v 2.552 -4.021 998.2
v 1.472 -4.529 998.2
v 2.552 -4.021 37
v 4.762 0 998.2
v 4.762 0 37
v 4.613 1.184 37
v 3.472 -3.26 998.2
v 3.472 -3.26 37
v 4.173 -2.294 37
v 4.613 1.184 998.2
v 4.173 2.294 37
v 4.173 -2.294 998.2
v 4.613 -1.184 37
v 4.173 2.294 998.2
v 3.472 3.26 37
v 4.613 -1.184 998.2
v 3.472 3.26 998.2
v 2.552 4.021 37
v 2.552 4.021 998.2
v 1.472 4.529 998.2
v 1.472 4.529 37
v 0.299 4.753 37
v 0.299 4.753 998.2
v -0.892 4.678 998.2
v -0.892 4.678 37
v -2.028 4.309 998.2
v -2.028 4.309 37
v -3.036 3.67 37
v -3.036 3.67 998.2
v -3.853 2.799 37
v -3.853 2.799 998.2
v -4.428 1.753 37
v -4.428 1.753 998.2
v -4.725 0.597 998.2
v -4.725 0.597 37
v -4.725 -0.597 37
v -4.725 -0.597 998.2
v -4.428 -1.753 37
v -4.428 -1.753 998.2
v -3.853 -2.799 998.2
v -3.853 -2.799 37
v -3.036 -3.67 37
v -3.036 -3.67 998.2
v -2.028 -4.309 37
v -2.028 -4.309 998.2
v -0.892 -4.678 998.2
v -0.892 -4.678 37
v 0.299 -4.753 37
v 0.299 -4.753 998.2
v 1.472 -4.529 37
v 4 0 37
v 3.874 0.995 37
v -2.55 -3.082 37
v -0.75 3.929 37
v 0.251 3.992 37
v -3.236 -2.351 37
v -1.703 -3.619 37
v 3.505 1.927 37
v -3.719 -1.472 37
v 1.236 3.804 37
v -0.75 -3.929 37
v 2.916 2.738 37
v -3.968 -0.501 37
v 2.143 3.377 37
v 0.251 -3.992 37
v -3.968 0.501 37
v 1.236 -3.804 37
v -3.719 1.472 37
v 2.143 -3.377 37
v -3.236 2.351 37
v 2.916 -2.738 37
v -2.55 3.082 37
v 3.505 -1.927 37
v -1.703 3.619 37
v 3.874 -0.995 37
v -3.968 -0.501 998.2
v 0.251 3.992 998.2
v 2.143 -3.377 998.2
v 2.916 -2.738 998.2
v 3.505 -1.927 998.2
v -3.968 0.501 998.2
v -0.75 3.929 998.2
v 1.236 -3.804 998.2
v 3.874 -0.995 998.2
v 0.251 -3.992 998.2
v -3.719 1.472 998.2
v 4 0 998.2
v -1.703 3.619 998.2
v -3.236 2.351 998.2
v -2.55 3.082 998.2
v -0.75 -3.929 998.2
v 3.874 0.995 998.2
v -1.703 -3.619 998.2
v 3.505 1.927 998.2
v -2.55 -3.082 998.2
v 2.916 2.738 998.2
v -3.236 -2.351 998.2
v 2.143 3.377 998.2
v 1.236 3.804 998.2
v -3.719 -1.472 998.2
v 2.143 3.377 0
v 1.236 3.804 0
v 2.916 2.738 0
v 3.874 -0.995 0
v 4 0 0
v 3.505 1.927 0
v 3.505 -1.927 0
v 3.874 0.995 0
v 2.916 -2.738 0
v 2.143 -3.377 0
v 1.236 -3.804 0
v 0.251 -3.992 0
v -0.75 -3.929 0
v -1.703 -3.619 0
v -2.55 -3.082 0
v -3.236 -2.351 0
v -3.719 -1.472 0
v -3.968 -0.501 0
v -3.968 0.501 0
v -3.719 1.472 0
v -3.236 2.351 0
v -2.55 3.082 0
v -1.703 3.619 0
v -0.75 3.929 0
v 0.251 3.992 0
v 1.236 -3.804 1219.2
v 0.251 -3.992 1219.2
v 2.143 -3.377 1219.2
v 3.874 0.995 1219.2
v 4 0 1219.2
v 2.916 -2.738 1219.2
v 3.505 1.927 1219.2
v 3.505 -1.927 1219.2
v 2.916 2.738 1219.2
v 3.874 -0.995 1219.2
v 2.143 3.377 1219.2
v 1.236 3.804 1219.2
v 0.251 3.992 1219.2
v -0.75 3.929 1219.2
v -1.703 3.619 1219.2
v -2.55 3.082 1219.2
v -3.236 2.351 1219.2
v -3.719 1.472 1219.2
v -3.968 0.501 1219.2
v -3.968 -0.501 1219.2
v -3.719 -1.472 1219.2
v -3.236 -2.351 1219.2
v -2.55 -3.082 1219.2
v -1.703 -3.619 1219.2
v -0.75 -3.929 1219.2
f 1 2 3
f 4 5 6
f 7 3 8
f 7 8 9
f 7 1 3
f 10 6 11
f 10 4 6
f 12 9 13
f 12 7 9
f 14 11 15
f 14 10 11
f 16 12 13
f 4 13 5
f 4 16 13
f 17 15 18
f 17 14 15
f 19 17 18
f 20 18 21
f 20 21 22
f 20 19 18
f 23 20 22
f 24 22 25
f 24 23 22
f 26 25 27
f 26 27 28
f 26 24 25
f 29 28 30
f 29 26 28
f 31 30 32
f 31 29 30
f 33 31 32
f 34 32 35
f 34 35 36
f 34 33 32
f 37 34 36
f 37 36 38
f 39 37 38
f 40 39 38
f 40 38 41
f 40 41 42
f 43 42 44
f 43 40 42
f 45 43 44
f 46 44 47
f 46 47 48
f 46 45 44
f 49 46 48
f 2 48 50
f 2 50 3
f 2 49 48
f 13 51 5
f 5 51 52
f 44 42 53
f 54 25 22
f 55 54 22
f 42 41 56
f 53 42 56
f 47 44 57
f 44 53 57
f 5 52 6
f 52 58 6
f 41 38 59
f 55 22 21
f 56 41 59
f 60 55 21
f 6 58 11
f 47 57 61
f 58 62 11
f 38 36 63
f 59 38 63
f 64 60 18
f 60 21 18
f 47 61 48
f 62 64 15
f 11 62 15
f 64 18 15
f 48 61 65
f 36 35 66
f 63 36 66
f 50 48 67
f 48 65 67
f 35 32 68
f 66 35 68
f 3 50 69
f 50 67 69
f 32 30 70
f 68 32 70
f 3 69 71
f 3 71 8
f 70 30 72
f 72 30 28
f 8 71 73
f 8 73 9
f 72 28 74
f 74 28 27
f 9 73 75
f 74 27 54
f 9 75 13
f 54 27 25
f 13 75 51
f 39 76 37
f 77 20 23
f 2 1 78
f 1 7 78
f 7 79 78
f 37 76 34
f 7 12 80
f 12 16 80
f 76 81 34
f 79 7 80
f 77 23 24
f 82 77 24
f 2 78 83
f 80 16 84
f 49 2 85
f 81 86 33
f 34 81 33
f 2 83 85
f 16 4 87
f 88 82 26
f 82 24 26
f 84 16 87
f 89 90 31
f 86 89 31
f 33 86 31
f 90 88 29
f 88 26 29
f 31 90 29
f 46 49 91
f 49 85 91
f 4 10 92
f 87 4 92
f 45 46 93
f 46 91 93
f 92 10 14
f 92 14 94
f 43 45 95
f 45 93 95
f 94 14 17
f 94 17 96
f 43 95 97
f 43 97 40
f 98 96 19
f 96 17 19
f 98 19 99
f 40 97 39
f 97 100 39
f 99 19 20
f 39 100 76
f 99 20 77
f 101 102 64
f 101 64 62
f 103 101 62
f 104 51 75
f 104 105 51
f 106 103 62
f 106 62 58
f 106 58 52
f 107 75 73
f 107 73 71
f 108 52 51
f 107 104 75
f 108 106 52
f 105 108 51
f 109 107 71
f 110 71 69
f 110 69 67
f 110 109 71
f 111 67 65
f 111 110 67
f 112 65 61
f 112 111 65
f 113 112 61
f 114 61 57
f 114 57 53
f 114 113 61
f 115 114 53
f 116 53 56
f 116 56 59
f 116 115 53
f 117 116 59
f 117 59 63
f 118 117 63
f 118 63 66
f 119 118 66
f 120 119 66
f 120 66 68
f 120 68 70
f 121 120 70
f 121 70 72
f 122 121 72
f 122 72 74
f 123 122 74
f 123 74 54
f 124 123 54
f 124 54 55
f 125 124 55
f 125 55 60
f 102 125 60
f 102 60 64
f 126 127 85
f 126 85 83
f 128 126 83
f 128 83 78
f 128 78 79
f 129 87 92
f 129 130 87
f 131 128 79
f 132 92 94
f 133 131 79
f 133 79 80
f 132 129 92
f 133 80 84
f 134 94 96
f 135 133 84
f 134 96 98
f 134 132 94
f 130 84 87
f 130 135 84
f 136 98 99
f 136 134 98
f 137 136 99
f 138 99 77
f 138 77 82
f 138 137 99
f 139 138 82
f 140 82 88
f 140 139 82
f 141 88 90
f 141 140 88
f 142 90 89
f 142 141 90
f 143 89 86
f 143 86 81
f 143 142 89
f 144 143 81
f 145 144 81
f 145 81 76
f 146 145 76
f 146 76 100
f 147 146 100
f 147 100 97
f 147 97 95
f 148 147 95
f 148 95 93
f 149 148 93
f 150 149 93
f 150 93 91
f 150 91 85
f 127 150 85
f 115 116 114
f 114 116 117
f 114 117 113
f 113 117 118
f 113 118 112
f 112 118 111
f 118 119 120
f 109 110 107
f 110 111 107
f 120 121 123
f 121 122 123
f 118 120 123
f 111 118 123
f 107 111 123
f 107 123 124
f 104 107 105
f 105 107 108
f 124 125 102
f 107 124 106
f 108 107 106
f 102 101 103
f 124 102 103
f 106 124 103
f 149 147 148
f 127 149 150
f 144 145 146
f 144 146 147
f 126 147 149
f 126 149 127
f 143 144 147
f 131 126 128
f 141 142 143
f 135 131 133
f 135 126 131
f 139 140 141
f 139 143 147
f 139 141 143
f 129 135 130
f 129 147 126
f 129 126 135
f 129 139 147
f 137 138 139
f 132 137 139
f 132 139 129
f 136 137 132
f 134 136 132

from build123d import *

# Parameters (mm, degrees)
CYLINDER_R      = 4.7625
CYLINDER_DEPTH  = 1219.2
SKETCH_R        = 6
SKETCH_R_2      = 4
POCKET_DEPTH    = 37
SKETCH001_R     = 6
SKETCH001_R_2   = 4
POCKET001_DEPTH = 221


with BuildPart() as part:
    # Cylinder → Cylinder (new body)
    with BuildSketch(Plane.XY):
        Circle(CYLINDER_R)
    extrude(amount=CYLINDER_DEPTH)

    # Sketch → Pocket (cut)
    with BuildSketch(Plane(origin=(0, 0, 0), x_dir=(1, 0, 0), z_dir=(0, 0, -1))):
        Circle(SKETCH_R)
        Circle(SKETCH_R_2, mode=Mode.SUBTRACT)
    extrude(amount=-POCKET_DEPTH, mode=Mode.SUBTRACT)

    # Sketch001 → Pocket001 (cut)
    with BuildSketch(Plane.XY.offset(1219.2)):
        Circle(SKETCH001_R)
        Circle(SKETCH001_R_2, mode=Mode.SUBTRACT)
    extrude(amount=-POCKET001_DEPTH, mode=Mode.SUBTRACT)


solid = part.part
